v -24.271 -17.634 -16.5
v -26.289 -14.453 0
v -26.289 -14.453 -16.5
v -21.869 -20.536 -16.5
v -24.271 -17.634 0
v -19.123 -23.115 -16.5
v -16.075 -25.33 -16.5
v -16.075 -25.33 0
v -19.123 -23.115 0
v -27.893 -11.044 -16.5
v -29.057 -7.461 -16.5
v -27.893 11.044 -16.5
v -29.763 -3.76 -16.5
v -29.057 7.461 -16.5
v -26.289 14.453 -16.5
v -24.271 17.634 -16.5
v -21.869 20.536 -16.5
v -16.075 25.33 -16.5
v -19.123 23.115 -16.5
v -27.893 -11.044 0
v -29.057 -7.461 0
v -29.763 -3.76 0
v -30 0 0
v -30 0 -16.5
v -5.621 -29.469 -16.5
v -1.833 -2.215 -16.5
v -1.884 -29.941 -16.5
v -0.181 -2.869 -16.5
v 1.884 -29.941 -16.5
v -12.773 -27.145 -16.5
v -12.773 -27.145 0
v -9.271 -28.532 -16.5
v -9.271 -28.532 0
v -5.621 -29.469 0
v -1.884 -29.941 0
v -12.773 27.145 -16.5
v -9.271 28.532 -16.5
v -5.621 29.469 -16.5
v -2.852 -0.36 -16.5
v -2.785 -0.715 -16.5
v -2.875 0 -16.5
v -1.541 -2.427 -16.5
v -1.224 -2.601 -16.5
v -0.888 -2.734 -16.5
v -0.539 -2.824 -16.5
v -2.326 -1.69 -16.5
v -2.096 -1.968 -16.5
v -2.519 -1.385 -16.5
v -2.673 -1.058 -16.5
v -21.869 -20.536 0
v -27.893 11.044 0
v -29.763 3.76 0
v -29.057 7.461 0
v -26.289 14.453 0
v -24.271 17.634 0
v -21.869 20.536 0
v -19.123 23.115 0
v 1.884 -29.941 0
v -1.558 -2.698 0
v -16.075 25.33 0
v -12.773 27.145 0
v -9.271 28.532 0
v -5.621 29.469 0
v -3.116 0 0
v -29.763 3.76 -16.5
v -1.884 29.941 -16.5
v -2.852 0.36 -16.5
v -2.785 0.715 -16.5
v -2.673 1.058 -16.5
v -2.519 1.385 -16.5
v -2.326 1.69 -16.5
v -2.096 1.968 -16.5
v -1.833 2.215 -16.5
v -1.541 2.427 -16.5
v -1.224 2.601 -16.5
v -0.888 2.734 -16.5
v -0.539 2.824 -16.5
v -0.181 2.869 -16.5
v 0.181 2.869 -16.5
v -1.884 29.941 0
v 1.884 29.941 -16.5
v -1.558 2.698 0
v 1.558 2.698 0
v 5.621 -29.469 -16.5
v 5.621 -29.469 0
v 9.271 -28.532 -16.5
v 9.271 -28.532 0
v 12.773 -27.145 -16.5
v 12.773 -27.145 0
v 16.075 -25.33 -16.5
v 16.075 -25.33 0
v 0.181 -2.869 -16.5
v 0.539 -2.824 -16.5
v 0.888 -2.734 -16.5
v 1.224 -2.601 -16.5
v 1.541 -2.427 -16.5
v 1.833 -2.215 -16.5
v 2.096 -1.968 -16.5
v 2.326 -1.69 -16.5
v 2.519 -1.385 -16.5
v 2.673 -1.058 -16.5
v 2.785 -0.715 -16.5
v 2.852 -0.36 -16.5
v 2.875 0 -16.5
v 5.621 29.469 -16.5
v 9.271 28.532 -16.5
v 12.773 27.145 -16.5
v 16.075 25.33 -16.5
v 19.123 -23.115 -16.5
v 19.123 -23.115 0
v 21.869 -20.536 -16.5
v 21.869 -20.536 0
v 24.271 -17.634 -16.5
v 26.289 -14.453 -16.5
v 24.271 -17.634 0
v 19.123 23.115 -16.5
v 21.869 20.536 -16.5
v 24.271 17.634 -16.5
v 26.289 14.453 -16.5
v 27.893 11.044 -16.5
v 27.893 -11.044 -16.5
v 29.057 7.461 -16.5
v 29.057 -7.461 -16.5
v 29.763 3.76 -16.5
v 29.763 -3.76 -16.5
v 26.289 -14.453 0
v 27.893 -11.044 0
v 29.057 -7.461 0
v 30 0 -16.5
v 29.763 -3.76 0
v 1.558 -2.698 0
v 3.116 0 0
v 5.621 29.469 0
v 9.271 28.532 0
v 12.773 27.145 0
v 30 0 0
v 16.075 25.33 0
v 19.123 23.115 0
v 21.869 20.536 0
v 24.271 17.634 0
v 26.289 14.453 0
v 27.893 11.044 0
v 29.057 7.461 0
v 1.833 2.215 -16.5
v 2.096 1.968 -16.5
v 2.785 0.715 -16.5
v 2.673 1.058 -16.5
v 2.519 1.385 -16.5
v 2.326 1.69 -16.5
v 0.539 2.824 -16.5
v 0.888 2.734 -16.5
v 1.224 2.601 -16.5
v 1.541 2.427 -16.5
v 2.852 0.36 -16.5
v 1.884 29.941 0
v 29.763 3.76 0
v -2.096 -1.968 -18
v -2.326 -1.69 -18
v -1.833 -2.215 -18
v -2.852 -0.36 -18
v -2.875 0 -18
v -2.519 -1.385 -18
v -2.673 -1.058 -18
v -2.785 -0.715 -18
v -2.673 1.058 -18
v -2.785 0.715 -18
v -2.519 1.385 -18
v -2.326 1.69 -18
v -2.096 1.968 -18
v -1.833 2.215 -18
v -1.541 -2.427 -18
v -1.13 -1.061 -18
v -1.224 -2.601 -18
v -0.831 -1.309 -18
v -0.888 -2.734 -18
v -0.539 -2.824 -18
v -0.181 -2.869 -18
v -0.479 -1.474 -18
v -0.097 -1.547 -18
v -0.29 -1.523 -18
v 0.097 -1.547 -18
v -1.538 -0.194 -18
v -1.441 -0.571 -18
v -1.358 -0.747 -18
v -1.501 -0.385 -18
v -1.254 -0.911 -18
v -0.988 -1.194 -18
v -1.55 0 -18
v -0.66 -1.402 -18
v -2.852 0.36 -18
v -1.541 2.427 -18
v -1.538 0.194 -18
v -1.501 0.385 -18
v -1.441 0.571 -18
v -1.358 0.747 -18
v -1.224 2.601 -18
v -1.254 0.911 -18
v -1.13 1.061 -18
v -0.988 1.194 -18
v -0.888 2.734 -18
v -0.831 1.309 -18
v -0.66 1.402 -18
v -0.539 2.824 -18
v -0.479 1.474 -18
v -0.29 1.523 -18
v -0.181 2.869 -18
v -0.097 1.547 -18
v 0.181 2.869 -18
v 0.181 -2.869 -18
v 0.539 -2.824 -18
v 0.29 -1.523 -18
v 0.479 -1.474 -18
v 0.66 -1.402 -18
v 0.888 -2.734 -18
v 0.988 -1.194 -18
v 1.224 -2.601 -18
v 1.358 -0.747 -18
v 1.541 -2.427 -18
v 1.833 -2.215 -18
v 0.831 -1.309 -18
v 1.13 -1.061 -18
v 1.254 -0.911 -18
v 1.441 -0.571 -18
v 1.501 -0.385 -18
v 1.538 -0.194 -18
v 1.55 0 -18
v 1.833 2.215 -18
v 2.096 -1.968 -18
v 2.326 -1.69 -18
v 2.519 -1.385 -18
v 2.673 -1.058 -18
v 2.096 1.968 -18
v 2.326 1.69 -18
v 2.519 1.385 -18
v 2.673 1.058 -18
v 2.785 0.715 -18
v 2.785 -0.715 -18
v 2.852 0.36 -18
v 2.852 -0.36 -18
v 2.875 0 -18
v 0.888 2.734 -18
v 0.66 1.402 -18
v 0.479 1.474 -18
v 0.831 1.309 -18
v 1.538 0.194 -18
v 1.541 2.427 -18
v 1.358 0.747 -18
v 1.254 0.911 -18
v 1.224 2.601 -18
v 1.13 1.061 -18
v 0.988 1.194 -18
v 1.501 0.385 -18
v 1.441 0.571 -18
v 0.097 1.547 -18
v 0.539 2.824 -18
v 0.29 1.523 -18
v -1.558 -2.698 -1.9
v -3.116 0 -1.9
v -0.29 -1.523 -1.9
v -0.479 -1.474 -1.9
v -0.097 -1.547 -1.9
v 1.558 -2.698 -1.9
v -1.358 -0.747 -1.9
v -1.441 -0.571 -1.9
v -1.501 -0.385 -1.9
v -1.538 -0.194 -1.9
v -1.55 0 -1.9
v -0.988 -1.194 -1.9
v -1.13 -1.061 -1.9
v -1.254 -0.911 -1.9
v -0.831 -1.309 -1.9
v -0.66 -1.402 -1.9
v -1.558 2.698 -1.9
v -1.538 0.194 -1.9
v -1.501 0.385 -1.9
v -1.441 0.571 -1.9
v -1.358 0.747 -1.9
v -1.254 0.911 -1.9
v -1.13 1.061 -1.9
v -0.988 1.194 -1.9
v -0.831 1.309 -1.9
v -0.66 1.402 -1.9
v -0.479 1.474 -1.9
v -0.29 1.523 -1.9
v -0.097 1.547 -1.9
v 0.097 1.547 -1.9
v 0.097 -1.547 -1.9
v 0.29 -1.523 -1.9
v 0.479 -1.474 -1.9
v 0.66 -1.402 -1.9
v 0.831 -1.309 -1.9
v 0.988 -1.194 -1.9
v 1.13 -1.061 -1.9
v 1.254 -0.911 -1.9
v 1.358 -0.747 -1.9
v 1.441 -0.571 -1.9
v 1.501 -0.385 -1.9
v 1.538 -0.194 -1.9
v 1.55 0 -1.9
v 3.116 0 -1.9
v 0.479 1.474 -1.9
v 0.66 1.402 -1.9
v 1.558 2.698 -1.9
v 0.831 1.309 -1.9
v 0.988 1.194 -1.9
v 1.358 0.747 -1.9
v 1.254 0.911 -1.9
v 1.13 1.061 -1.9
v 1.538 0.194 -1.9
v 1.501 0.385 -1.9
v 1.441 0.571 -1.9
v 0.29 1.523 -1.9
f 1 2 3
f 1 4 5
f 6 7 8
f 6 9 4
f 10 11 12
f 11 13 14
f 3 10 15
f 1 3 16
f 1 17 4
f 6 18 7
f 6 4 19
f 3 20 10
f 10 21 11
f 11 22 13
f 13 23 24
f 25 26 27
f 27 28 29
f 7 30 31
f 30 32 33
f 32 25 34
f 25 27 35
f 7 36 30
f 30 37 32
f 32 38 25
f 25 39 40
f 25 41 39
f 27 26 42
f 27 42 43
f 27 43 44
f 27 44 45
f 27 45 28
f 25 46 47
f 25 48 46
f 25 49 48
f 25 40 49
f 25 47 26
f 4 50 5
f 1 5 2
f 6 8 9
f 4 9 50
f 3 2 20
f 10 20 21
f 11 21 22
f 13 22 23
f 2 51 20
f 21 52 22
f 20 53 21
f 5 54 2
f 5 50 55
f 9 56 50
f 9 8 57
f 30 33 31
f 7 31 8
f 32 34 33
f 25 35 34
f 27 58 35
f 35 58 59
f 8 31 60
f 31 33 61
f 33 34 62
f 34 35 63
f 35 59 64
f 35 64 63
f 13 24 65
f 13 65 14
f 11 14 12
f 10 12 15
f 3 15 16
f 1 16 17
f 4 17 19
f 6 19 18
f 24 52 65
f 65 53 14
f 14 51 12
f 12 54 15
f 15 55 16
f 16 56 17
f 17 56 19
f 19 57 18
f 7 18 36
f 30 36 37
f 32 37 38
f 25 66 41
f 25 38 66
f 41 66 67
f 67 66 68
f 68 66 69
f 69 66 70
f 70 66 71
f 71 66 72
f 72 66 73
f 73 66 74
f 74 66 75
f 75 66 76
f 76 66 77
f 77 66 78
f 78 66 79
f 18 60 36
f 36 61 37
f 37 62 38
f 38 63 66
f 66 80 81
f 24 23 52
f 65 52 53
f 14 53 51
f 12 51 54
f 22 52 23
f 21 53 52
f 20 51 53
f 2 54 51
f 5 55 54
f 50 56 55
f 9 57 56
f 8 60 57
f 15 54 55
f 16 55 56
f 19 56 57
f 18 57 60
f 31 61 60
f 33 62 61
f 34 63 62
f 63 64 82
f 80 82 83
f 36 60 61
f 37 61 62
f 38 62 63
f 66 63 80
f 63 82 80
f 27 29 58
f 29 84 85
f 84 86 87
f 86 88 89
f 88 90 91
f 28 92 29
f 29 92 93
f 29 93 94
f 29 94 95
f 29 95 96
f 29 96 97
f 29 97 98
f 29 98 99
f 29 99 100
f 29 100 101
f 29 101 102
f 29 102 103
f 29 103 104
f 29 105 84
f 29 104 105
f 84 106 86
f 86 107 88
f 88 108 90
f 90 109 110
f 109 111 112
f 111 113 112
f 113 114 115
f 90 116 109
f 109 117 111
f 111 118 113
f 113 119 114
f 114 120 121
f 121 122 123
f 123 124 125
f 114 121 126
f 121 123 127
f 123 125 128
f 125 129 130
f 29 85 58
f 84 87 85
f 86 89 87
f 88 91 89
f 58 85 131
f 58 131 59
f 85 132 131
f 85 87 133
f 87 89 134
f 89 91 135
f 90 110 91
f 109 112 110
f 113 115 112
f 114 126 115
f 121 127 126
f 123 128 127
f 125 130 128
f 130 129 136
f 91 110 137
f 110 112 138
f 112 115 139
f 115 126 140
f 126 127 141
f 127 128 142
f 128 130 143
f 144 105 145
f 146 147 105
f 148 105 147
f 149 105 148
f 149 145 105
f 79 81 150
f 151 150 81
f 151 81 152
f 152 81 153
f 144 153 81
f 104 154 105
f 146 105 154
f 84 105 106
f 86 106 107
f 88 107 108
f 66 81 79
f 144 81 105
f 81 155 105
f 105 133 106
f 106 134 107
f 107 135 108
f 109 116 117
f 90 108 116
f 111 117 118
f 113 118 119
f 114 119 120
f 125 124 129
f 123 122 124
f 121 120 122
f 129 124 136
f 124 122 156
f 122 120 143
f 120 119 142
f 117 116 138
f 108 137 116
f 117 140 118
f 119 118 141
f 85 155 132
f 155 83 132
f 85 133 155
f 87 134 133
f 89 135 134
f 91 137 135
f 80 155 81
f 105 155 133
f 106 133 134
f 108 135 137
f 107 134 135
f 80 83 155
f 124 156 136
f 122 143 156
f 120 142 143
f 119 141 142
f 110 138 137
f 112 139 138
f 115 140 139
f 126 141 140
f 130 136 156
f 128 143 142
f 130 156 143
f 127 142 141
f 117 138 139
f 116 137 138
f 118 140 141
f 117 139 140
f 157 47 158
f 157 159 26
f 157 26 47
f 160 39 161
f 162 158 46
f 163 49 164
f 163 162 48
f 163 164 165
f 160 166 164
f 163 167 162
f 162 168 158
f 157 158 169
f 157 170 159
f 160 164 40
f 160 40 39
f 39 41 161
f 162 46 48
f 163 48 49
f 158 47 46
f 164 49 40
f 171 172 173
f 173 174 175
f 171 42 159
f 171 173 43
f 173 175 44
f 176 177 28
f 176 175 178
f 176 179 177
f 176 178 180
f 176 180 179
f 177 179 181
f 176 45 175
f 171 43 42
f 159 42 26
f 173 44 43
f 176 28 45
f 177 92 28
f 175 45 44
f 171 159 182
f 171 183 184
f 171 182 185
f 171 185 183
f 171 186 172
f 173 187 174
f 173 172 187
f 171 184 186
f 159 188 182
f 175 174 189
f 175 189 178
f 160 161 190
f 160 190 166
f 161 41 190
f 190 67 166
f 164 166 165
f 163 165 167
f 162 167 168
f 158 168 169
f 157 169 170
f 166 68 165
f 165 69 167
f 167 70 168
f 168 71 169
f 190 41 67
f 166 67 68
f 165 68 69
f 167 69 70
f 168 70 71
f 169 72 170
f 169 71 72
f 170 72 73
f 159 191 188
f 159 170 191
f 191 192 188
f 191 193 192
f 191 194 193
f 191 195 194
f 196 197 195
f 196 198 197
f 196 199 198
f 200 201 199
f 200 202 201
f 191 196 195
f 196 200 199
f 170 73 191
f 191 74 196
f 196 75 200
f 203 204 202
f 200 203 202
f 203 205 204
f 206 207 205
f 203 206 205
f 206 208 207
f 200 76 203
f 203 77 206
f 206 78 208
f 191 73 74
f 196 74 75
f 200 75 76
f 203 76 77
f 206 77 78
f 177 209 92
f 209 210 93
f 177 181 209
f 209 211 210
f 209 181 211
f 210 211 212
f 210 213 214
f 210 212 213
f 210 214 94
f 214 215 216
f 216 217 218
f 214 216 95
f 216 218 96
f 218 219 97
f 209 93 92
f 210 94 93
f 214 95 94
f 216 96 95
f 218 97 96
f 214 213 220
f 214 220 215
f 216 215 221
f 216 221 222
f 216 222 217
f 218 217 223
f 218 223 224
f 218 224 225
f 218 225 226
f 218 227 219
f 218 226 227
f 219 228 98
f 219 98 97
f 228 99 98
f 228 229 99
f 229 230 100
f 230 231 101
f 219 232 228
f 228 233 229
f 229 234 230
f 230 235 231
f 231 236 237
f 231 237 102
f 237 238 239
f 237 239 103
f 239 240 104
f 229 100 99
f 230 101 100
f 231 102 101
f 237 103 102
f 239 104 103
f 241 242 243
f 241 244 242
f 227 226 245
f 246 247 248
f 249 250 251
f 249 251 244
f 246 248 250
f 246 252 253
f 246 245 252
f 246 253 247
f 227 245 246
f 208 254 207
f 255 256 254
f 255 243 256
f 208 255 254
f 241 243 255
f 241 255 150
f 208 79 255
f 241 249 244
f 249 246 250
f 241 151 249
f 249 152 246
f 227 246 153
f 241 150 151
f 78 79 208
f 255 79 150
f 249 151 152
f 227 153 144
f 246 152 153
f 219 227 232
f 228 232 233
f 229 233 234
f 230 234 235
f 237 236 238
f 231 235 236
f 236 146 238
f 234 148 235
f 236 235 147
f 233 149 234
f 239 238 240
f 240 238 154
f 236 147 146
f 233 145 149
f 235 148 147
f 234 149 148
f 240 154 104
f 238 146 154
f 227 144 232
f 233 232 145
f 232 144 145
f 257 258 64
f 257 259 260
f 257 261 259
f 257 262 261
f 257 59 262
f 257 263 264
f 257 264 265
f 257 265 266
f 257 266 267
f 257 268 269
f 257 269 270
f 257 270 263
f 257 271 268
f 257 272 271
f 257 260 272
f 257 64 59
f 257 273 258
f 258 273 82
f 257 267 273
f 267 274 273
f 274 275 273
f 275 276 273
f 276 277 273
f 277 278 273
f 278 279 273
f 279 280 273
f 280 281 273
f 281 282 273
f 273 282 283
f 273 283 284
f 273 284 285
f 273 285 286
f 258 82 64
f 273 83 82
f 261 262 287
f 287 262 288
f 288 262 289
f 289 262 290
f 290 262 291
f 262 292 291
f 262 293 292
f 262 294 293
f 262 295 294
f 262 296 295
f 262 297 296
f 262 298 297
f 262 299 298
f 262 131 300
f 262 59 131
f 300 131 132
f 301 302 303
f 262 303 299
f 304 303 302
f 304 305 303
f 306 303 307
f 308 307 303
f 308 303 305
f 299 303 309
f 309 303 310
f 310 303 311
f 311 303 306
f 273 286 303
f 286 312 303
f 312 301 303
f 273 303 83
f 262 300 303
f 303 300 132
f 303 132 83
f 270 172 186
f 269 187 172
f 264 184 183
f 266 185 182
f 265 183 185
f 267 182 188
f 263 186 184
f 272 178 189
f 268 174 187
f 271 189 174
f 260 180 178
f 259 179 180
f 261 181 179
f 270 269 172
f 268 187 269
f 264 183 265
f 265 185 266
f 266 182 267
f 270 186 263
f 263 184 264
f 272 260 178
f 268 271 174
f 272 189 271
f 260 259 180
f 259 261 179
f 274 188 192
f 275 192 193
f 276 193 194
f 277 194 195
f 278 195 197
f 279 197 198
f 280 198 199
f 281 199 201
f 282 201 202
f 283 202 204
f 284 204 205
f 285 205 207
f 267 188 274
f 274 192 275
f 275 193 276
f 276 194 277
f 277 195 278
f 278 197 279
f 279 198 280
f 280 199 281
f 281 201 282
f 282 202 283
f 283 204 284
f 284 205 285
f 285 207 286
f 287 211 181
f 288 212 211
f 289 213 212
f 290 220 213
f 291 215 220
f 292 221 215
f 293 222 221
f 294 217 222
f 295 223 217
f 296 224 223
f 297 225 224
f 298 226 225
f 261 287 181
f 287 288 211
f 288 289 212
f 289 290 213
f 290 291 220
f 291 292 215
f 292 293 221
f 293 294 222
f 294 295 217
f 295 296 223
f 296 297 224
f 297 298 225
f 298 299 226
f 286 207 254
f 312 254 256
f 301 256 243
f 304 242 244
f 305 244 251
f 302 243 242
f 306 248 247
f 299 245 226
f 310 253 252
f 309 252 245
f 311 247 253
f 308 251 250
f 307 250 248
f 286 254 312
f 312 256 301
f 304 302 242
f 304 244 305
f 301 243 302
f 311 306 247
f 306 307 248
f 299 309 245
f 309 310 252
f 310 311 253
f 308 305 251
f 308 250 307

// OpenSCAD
$fn = 50;

difference() {
	union() {
		translate(v = [0, 0, -16.5]) {
			cylinder(h = 16.5, r = 30.0);
		}
		#translate(v = [0, 0, -18.0]) {
			cylinder(h = 18, r = 2.875);
		}
	}
	union() {
		translate(v = [0, 0, 0]) {
			rotate(a = [0, 0, 0]) {
				difference() {
					union() {
						translate(v = [0, 0, -1.9]) {
							linear_extrude(height = 1.9) {
								polygon(points = [[3.1158, 0.0], [1.5579000000000005, 2.698361953111554], [-1.5578999999999994, 2.6983619531115544], [-3.1158, 3.815754496783323e-16], [-1.5579000000000014, -2.6983619531115535], [1.557899999999998, -2.6983619531115552]]);
							}
						}
					}
					union();
				}
			}
		}
		#translate(v = [0, 0, -100.0]) {
			cylinder(h = 200, r = 1.55);
		}
	}
}
